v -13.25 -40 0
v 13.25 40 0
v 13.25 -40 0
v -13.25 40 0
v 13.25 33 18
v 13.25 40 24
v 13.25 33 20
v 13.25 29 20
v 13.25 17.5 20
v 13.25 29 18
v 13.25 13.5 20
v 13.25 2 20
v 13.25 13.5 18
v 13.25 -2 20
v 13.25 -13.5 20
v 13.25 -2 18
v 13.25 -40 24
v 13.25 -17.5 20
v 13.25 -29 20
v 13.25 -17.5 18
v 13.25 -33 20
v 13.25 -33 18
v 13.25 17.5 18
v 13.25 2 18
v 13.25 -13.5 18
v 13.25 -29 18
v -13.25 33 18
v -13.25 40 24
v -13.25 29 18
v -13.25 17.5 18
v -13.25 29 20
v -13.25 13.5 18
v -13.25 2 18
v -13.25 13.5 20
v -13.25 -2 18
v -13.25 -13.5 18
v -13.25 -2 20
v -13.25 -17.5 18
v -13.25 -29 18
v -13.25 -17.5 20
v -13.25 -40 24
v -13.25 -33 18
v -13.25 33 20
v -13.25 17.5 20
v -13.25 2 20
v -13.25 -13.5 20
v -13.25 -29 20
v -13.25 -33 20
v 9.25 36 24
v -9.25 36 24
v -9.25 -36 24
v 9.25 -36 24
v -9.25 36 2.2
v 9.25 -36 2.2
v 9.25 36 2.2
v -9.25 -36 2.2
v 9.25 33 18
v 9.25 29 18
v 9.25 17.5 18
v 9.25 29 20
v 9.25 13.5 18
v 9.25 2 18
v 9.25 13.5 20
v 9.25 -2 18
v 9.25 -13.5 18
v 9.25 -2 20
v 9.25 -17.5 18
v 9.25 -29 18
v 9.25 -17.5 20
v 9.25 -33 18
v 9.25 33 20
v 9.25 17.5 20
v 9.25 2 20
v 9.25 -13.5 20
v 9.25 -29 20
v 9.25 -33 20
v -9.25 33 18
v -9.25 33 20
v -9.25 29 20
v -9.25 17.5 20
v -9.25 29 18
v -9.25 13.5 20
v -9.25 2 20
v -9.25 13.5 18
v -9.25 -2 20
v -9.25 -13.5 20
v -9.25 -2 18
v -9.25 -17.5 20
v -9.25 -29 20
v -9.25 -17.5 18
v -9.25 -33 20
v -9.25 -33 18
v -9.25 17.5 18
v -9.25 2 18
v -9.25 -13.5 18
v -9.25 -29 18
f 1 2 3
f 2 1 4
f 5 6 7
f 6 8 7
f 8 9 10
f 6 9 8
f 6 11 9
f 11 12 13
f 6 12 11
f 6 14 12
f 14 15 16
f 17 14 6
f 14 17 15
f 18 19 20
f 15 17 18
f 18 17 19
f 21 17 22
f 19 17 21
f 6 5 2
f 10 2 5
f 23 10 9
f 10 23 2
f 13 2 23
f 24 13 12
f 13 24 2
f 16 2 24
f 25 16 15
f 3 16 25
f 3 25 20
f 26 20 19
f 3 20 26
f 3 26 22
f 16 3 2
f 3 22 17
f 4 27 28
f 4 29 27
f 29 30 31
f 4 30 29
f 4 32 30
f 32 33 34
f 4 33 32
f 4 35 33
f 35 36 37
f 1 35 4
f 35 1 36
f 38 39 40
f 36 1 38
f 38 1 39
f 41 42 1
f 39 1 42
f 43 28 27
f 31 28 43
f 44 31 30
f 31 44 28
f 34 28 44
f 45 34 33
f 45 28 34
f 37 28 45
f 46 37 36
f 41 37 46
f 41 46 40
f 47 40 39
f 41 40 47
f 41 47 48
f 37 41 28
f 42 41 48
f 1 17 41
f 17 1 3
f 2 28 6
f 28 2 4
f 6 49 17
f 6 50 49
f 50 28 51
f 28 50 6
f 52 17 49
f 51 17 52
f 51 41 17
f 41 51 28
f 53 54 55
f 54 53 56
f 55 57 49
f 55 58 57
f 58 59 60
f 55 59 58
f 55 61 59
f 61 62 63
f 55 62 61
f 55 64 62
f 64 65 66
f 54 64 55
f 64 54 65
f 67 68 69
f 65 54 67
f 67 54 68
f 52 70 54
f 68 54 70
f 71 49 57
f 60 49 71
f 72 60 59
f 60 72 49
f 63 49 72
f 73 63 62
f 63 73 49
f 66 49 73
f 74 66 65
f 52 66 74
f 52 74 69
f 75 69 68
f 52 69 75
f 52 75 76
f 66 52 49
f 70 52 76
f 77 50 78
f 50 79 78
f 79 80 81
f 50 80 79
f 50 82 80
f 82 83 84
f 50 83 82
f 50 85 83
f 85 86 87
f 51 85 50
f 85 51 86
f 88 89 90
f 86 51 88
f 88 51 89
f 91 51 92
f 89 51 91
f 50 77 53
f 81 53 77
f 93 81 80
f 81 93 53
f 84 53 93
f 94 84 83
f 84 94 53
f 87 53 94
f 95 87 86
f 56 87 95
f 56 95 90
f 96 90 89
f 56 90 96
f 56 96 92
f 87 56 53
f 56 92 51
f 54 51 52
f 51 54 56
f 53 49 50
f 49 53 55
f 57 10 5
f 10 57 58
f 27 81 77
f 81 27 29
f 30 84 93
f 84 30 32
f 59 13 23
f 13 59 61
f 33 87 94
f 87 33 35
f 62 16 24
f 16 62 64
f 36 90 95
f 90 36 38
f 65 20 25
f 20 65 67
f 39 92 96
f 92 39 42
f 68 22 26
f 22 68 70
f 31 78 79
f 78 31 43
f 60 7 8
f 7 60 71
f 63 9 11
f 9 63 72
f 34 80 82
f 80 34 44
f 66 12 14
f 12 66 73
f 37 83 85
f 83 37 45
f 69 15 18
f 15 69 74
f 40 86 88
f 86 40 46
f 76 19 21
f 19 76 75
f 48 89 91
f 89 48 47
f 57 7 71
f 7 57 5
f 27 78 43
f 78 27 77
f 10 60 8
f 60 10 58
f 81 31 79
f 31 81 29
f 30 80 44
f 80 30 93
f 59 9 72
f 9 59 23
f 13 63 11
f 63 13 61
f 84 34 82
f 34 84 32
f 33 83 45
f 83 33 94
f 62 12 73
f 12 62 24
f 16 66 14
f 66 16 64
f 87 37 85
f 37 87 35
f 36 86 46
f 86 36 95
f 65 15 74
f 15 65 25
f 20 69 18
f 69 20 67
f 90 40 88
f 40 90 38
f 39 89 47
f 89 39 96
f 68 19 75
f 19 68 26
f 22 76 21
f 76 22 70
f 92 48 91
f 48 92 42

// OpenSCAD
module grid(x, y, width, height, center = true)
{
    x_space = width / (x - 1);
    y_space = height / (y - 1);
    translate(center ? [-(x_space * (x - 1))/2, -(y_space * (y - 1))/2, 0] : [0, 0, 0])
        for (i = [0:x_space:(x - 1) * x_space]) {
            for (j = [0:y_space:(y - 1) * y_space]) {
                translate([i, j, 0]) {
                    children();
                }
            }
        }
}

module repeat_y(times, width, center = true) {
    times = times - 1;
    for (i = [0:1:times])
        translate([0, i * (width / times) - (center ? width / 2 : 0), 0])
            children();
}

module lion_enclosure(height = 24.00, wall = 4.00, base_height = 2.20) {
    workspace = [18.50, 72.00];
    base = [18.50 + (wall * 2), 72.00 + (wall * 2)];
    
    ziptie_w = 4.00;
    
    difference() { 
        linear_extrude(height)
            square(base, center = true);
        
        translate([0, 0, base_height])
            linear_extrude(height - base_height)
                square(workspace, center = true);
        
        translate([0, 0, height - 6.00])
            linear_extrude(2.00)
                repeat_y(5, workspace[1] - (wall * 2) - ziptie_w / 2)
                    square([base[0], 4.00], center = true);
    }
}

lion_enclosure();
